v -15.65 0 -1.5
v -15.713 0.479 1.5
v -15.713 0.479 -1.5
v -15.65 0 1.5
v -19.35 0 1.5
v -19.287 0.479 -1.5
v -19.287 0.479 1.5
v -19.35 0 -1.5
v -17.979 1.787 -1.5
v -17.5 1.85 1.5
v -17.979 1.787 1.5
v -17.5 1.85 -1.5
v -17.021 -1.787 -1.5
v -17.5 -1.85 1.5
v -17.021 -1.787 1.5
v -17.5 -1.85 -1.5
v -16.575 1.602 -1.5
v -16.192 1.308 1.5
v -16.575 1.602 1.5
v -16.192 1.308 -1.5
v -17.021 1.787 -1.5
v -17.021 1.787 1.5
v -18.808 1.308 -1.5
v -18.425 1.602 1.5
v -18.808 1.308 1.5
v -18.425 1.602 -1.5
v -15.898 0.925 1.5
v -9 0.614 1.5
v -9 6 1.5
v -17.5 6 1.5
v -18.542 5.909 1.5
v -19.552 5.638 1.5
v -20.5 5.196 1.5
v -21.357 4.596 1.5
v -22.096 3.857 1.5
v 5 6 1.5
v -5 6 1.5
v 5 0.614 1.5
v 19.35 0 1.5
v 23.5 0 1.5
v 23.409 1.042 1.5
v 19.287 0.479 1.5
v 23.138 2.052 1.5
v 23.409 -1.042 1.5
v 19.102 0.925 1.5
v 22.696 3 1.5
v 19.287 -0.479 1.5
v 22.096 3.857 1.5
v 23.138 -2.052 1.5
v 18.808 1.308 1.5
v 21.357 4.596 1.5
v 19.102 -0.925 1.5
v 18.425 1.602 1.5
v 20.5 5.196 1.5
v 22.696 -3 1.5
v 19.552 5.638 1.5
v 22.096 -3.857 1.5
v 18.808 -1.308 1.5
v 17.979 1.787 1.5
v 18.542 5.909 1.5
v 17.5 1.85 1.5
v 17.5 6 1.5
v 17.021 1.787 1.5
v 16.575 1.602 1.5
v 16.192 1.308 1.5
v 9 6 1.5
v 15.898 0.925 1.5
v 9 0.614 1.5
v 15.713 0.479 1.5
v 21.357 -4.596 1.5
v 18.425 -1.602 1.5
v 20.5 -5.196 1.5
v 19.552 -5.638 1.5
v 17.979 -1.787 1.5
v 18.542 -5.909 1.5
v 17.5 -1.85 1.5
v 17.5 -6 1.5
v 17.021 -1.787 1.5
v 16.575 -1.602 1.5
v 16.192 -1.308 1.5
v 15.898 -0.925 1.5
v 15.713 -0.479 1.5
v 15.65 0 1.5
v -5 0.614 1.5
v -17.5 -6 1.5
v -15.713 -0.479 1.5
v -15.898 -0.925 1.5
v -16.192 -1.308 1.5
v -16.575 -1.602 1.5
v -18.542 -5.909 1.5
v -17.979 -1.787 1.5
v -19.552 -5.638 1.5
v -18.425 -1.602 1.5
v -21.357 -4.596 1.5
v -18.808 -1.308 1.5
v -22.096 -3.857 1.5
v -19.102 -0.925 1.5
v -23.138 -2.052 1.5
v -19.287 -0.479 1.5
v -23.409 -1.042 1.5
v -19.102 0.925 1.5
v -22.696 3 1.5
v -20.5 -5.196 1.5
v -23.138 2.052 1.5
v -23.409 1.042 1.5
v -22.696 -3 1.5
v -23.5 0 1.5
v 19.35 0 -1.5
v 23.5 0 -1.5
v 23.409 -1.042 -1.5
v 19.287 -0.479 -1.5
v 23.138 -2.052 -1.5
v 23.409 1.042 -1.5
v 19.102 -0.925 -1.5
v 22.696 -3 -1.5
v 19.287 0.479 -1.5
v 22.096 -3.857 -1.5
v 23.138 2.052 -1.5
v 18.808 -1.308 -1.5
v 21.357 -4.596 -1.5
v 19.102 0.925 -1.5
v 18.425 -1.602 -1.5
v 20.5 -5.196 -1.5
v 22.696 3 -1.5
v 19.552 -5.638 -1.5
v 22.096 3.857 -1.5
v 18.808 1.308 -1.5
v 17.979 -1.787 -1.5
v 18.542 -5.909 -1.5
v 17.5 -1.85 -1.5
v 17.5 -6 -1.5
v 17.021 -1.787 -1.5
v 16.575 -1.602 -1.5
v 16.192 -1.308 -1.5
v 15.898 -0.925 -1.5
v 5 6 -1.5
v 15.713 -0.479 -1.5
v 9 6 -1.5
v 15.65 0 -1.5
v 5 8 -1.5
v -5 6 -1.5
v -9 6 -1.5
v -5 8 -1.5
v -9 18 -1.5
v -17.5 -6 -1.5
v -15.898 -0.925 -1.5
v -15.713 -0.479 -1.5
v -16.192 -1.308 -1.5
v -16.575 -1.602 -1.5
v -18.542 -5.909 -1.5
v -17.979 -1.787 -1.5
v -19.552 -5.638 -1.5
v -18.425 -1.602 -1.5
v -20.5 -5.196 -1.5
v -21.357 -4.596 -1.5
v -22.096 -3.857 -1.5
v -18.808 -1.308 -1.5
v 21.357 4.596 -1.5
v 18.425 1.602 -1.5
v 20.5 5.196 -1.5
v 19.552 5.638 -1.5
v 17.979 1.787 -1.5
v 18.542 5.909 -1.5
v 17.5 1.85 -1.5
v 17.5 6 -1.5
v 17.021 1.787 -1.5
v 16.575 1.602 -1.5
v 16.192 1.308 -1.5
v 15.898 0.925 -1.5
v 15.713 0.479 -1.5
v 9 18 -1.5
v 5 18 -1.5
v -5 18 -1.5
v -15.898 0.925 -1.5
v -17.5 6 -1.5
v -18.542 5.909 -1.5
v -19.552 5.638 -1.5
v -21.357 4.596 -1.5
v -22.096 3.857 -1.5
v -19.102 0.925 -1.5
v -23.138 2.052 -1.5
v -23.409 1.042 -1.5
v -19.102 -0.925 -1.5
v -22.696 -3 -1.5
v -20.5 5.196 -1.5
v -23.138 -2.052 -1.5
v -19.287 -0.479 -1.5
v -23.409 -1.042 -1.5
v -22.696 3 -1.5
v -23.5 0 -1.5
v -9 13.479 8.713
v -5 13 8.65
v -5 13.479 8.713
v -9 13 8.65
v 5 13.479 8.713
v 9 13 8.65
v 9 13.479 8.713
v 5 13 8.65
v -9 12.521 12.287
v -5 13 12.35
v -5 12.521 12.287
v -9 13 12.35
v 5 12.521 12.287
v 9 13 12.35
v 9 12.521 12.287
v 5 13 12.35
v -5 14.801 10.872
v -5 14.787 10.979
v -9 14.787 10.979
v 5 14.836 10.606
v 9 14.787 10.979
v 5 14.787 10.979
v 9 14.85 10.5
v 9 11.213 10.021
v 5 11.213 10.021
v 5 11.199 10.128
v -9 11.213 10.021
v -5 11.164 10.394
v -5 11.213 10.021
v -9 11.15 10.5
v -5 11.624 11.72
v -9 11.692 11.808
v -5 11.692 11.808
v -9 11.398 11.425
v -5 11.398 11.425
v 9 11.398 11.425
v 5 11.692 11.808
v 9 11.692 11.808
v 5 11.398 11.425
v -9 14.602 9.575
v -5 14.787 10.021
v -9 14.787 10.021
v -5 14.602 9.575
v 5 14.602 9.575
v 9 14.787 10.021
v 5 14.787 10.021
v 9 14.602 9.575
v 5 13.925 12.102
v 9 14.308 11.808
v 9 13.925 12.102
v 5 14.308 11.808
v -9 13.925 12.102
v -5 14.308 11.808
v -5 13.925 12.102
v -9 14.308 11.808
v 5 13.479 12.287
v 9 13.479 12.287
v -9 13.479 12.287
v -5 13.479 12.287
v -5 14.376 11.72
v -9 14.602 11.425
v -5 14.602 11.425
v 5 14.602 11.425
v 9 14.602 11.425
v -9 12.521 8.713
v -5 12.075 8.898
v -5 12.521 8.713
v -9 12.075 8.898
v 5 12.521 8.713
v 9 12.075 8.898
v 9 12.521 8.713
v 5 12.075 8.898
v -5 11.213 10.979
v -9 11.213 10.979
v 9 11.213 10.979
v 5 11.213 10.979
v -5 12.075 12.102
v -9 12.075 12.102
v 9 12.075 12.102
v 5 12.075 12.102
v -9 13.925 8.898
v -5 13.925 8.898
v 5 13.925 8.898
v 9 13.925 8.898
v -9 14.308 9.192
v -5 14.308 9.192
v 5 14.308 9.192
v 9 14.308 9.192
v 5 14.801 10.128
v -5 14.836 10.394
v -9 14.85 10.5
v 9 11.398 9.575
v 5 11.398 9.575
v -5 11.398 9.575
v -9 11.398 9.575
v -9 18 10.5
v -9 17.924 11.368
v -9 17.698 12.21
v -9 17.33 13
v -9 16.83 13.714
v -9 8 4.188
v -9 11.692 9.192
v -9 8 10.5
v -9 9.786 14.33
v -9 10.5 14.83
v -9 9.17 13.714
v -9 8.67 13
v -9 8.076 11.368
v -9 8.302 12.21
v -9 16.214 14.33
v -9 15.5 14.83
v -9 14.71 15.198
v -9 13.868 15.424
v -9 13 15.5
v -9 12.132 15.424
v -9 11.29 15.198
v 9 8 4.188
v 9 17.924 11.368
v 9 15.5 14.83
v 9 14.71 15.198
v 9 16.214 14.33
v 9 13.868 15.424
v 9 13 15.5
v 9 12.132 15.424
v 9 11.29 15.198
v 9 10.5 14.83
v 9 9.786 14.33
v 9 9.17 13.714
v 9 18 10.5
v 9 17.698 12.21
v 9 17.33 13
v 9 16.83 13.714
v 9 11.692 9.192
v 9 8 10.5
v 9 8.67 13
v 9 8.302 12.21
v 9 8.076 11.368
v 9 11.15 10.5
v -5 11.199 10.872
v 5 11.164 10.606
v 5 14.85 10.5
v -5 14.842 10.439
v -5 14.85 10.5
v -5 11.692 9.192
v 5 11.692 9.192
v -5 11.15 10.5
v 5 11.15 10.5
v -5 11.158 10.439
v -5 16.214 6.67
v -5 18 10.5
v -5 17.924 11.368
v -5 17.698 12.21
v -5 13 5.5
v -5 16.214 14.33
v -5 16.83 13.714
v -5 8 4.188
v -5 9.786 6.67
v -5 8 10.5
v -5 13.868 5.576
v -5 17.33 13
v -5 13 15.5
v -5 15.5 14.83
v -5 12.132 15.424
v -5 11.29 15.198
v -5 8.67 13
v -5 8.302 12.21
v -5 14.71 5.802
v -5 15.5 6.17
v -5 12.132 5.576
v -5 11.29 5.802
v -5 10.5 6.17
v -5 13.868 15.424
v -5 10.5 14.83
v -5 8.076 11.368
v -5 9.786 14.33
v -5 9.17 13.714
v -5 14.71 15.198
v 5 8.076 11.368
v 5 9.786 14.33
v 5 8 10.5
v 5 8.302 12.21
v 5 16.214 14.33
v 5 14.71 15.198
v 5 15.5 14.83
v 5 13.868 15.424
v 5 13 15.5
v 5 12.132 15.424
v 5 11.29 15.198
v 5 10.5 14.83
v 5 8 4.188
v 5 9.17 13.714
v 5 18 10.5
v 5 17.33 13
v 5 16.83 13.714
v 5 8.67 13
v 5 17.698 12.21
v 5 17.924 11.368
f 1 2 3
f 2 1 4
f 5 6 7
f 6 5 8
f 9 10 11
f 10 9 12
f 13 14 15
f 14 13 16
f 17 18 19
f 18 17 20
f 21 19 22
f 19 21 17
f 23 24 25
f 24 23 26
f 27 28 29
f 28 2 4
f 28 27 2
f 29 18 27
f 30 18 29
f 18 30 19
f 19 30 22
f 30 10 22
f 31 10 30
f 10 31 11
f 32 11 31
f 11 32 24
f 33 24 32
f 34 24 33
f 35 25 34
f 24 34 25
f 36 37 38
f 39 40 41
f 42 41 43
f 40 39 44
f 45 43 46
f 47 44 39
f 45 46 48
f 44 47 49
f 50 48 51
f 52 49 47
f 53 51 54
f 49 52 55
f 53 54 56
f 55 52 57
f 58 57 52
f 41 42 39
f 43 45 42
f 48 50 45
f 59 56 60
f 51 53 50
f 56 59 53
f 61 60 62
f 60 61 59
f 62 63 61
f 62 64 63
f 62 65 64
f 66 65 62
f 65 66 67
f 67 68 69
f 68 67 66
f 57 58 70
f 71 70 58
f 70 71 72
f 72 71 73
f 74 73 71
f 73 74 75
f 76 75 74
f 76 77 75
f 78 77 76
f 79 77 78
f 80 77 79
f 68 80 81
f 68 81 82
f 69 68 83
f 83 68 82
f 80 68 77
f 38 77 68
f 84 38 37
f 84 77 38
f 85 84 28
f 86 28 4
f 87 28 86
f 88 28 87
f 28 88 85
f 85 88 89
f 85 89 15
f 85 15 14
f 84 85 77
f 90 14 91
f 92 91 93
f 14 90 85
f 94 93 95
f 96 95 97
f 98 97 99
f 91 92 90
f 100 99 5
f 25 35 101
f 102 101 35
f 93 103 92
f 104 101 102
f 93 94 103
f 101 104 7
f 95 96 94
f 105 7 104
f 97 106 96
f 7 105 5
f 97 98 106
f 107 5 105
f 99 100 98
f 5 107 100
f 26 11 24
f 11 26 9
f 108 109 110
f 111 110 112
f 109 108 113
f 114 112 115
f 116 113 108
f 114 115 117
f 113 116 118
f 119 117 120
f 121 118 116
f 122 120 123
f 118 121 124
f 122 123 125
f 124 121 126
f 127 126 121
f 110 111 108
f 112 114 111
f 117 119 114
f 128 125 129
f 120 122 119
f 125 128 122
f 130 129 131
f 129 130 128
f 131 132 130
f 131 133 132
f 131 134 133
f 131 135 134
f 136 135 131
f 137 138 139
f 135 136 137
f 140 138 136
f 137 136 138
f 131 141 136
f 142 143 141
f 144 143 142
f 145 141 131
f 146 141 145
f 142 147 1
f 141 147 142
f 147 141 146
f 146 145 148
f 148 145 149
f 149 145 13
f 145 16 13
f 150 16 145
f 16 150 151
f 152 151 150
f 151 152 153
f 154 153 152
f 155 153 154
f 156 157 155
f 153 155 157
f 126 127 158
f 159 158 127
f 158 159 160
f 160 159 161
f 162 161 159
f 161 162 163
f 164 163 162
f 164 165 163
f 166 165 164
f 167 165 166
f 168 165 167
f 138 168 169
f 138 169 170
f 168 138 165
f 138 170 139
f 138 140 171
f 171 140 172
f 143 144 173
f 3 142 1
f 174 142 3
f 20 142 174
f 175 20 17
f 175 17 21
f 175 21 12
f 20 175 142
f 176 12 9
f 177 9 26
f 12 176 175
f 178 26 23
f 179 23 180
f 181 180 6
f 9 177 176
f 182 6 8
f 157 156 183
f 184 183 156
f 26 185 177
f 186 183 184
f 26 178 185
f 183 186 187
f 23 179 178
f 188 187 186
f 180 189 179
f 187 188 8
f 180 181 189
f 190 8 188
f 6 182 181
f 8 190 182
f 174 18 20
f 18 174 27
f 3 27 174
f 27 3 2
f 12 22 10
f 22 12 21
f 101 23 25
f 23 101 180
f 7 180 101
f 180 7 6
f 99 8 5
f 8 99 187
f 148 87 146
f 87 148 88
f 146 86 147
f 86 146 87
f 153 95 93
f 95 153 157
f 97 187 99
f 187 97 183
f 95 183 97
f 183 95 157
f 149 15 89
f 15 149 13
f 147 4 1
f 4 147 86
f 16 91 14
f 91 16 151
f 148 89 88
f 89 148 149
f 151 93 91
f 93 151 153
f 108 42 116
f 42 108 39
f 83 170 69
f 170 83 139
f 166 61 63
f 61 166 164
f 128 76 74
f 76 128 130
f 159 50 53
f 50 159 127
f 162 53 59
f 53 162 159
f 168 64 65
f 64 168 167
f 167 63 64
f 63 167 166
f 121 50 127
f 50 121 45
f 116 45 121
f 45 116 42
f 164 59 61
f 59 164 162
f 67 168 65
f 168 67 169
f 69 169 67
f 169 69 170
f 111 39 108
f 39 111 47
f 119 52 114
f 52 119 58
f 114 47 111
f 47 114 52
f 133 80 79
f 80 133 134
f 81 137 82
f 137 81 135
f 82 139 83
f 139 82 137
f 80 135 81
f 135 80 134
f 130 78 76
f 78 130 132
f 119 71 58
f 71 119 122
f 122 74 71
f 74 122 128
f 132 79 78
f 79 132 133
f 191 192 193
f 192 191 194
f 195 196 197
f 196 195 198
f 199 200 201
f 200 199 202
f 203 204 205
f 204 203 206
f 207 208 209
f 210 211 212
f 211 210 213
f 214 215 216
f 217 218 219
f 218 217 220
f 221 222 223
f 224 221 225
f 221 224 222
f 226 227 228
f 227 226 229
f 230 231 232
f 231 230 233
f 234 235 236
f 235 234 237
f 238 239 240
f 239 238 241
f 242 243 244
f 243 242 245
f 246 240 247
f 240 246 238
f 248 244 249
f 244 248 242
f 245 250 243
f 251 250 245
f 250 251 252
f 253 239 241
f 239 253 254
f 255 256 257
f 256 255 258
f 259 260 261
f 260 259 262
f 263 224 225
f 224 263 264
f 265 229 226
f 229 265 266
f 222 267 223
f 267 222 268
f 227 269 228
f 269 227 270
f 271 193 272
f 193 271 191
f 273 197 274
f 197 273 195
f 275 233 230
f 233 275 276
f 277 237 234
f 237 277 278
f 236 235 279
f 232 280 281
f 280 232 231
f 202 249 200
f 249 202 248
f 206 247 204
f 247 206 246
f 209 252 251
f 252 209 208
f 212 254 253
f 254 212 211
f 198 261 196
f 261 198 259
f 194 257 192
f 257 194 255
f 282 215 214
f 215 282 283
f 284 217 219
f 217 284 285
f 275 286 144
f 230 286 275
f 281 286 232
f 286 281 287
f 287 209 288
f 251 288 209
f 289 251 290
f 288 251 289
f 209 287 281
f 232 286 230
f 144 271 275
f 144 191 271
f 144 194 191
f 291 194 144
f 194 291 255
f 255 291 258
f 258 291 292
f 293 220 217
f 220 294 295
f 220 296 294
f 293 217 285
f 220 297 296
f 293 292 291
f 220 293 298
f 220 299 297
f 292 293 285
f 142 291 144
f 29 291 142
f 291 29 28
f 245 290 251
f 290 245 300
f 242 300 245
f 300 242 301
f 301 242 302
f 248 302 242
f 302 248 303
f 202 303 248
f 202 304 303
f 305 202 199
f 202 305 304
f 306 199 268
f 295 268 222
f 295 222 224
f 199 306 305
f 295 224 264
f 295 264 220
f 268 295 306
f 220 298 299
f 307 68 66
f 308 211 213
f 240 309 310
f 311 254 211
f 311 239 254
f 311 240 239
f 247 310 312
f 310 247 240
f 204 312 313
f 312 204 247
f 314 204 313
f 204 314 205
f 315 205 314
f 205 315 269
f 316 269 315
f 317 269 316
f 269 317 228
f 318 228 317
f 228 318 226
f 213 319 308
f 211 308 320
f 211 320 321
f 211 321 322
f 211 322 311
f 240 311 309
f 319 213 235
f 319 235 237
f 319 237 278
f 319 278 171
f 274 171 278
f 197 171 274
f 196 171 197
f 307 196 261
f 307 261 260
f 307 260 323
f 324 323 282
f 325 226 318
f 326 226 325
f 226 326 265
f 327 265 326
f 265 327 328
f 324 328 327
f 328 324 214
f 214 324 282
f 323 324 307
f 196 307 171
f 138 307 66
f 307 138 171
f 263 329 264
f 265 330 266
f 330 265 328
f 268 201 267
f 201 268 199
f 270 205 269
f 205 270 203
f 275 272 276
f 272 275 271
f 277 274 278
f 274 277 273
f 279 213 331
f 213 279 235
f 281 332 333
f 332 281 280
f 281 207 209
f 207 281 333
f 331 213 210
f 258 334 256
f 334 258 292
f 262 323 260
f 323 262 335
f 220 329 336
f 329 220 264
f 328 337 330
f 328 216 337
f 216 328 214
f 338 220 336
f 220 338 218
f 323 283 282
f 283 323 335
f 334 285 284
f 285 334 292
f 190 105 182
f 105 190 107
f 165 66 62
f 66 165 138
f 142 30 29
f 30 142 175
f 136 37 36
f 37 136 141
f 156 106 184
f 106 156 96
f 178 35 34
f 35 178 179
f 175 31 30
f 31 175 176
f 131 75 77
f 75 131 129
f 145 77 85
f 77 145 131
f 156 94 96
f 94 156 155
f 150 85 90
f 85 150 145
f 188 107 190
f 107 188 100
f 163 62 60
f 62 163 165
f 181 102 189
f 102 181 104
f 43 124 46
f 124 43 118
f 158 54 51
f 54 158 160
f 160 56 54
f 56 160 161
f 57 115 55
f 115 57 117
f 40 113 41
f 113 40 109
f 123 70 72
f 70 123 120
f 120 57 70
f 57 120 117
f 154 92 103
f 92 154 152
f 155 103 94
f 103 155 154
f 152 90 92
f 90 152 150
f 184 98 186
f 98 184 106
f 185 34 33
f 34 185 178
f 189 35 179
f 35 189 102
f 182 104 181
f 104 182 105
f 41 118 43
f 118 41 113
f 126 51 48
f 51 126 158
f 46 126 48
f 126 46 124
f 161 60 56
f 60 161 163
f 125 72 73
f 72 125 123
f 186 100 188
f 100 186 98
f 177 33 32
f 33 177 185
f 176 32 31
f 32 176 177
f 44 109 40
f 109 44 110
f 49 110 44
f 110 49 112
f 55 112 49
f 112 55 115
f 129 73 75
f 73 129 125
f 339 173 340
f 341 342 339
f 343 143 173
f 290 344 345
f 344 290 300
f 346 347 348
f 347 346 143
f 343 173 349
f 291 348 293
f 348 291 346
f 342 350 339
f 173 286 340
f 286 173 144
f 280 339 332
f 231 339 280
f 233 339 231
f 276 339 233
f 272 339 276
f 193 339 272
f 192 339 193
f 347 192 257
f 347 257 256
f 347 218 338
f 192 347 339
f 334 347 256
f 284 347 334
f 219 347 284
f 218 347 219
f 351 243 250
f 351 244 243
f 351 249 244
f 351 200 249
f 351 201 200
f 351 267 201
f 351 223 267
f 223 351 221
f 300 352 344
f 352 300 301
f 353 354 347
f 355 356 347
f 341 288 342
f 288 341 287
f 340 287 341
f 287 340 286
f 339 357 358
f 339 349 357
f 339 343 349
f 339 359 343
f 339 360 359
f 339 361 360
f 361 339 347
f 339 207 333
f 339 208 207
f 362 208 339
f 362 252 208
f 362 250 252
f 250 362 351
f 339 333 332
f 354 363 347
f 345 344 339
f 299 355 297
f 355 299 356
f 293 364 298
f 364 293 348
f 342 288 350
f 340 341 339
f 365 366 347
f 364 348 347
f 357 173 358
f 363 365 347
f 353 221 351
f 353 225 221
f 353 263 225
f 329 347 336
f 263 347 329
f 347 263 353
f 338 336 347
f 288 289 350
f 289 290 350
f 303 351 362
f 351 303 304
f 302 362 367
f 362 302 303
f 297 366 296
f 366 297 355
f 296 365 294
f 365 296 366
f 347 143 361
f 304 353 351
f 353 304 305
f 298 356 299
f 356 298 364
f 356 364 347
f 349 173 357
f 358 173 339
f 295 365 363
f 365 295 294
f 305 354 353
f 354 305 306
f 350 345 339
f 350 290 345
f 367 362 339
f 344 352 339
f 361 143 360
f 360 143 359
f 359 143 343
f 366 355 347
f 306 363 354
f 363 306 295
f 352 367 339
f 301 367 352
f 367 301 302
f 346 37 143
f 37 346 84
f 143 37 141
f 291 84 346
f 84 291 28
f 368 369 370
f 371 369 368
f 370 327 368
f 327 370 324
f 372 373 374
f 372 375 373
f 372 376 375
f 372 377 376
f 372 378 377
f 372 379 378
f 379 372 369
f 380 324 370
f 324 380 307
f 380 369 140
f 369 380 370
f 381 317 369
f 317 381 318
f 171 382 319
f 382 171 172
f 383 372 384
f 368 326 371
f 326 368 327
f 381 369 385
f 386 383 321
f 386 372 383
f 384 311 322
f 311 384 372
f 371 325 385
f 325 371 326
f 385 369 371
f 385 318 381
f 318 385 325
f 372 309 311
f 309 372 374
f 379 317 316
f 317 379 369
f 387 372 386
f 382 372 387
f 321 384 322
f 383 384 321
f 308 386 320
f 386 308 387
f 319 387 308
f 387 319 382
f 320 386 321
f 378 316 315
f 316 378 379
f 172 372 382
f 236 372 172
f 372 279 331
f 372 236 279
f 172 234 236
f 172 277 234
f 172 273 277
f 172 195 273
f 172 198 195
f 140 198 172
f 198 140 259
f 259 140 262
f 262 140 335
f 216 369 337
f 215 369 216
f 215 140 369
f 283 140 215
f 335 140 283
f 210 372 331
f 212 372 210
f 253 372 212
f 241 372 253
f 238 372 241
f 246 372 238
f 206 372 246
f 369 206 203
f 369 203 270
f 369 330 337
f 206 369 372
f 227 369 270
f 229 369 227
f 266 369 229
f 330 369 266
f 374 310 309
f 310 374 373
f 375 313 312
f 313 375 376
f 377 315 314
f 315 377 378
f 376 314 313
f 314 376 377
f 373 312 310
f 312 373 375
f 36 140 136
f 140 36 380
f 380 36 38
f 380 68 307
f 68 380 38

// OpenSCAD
$fa=10; $fs=0.5;

uhoW=10;
bloW=35;

difference(){
	union(){
		hull(){ //планка под улитку
			translate([-bloW/2, 0, 0]) cylinder(h=3, r=6, center=true);
			translate([bloW/2, 0, 0]) cylinder(h=3, r=6, center=true);
            
		}

		//под ухо
        hull(){ 
			translate([-uhoW/2-2, 13, 5-1.5+7]) rotate([0,90,0]) cylinder(h=4, r=5, center=true);
			translate([-uhoW/2-2, 13, 0]) cube ([4, 10, 3], center=true); 
		}
        translate([-uhoW/2-2, 8, 0]) cube([4,5,3], center=true);
        translate([-uhoW/2-2, 5, 1.5]) rotate([20,0,0]) cube([4,9,3], center=true);
        
		//под ухо
        hull(){ 
			translate([uhoW/2+2, 13, 5-1.5+7]) rotate([0,90,0]) cylinder(h=4, r=5, center=true);
			translate([uhoW/2+2, 13, 0]) cube ([4, 10, 3], center=true); 
		}
        translate([uhoW/2+2, 8, 0]) cube([4,5,3], center=true);
        translate([uhoW/2+2, 5, 1.5]) rotate([20,0,0]) cube([4,9,3], center=true);
	}

	union(){
		// под винты крепления улитки
		translate([-bloW/2, 0, 0]) cylinder(h=3, r=1.85, center=true);
		translate([bloW/2, 0, 0]) cylinder(h=3, r=1.85, center=true);

		//под винт вухо
		translate([0, 13, 5-1.5+7]) rotate([0,90,0]) cylinder(h=uhoW+8, r=1.85, center=true);
        
	}
}
